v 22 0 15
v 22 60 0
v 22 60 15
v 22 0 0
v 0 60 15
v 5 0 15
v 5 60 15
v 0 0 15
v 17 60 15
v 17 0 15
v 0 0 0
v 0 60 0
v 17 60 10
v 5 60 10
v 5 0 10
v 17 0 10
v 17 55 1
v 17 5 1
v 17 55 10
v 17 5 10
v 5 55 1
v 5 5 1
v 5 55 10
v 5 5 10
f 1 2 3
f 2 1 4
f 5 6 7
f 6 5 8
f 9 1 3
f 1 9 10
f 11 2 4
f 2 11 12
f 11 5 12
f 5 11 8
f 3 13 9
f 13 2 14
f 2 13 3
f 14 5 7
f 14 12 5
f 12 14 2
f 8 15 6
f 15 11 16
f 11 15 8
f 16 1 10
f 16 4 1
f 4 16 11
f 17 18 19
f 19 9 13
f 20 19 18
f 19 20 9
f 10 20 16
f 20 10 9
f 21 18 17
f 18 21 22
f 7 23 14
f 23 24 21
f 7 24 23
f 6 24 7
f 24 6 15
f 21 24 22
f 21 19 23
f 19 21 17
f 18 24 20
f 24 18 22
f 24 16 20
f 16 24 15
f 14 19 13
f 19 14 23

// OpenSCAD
//12x50mm
difference() {
    cube([22,60,15]);
    
    translate([5,5,1]) {
        cube([12,50,15]);
    }
    
    translate([5,0,10]) {
        cube([12,10,15]);
    }
        
    translate([5,55,10]) {
        cube([12,10,15]);
    }
}
